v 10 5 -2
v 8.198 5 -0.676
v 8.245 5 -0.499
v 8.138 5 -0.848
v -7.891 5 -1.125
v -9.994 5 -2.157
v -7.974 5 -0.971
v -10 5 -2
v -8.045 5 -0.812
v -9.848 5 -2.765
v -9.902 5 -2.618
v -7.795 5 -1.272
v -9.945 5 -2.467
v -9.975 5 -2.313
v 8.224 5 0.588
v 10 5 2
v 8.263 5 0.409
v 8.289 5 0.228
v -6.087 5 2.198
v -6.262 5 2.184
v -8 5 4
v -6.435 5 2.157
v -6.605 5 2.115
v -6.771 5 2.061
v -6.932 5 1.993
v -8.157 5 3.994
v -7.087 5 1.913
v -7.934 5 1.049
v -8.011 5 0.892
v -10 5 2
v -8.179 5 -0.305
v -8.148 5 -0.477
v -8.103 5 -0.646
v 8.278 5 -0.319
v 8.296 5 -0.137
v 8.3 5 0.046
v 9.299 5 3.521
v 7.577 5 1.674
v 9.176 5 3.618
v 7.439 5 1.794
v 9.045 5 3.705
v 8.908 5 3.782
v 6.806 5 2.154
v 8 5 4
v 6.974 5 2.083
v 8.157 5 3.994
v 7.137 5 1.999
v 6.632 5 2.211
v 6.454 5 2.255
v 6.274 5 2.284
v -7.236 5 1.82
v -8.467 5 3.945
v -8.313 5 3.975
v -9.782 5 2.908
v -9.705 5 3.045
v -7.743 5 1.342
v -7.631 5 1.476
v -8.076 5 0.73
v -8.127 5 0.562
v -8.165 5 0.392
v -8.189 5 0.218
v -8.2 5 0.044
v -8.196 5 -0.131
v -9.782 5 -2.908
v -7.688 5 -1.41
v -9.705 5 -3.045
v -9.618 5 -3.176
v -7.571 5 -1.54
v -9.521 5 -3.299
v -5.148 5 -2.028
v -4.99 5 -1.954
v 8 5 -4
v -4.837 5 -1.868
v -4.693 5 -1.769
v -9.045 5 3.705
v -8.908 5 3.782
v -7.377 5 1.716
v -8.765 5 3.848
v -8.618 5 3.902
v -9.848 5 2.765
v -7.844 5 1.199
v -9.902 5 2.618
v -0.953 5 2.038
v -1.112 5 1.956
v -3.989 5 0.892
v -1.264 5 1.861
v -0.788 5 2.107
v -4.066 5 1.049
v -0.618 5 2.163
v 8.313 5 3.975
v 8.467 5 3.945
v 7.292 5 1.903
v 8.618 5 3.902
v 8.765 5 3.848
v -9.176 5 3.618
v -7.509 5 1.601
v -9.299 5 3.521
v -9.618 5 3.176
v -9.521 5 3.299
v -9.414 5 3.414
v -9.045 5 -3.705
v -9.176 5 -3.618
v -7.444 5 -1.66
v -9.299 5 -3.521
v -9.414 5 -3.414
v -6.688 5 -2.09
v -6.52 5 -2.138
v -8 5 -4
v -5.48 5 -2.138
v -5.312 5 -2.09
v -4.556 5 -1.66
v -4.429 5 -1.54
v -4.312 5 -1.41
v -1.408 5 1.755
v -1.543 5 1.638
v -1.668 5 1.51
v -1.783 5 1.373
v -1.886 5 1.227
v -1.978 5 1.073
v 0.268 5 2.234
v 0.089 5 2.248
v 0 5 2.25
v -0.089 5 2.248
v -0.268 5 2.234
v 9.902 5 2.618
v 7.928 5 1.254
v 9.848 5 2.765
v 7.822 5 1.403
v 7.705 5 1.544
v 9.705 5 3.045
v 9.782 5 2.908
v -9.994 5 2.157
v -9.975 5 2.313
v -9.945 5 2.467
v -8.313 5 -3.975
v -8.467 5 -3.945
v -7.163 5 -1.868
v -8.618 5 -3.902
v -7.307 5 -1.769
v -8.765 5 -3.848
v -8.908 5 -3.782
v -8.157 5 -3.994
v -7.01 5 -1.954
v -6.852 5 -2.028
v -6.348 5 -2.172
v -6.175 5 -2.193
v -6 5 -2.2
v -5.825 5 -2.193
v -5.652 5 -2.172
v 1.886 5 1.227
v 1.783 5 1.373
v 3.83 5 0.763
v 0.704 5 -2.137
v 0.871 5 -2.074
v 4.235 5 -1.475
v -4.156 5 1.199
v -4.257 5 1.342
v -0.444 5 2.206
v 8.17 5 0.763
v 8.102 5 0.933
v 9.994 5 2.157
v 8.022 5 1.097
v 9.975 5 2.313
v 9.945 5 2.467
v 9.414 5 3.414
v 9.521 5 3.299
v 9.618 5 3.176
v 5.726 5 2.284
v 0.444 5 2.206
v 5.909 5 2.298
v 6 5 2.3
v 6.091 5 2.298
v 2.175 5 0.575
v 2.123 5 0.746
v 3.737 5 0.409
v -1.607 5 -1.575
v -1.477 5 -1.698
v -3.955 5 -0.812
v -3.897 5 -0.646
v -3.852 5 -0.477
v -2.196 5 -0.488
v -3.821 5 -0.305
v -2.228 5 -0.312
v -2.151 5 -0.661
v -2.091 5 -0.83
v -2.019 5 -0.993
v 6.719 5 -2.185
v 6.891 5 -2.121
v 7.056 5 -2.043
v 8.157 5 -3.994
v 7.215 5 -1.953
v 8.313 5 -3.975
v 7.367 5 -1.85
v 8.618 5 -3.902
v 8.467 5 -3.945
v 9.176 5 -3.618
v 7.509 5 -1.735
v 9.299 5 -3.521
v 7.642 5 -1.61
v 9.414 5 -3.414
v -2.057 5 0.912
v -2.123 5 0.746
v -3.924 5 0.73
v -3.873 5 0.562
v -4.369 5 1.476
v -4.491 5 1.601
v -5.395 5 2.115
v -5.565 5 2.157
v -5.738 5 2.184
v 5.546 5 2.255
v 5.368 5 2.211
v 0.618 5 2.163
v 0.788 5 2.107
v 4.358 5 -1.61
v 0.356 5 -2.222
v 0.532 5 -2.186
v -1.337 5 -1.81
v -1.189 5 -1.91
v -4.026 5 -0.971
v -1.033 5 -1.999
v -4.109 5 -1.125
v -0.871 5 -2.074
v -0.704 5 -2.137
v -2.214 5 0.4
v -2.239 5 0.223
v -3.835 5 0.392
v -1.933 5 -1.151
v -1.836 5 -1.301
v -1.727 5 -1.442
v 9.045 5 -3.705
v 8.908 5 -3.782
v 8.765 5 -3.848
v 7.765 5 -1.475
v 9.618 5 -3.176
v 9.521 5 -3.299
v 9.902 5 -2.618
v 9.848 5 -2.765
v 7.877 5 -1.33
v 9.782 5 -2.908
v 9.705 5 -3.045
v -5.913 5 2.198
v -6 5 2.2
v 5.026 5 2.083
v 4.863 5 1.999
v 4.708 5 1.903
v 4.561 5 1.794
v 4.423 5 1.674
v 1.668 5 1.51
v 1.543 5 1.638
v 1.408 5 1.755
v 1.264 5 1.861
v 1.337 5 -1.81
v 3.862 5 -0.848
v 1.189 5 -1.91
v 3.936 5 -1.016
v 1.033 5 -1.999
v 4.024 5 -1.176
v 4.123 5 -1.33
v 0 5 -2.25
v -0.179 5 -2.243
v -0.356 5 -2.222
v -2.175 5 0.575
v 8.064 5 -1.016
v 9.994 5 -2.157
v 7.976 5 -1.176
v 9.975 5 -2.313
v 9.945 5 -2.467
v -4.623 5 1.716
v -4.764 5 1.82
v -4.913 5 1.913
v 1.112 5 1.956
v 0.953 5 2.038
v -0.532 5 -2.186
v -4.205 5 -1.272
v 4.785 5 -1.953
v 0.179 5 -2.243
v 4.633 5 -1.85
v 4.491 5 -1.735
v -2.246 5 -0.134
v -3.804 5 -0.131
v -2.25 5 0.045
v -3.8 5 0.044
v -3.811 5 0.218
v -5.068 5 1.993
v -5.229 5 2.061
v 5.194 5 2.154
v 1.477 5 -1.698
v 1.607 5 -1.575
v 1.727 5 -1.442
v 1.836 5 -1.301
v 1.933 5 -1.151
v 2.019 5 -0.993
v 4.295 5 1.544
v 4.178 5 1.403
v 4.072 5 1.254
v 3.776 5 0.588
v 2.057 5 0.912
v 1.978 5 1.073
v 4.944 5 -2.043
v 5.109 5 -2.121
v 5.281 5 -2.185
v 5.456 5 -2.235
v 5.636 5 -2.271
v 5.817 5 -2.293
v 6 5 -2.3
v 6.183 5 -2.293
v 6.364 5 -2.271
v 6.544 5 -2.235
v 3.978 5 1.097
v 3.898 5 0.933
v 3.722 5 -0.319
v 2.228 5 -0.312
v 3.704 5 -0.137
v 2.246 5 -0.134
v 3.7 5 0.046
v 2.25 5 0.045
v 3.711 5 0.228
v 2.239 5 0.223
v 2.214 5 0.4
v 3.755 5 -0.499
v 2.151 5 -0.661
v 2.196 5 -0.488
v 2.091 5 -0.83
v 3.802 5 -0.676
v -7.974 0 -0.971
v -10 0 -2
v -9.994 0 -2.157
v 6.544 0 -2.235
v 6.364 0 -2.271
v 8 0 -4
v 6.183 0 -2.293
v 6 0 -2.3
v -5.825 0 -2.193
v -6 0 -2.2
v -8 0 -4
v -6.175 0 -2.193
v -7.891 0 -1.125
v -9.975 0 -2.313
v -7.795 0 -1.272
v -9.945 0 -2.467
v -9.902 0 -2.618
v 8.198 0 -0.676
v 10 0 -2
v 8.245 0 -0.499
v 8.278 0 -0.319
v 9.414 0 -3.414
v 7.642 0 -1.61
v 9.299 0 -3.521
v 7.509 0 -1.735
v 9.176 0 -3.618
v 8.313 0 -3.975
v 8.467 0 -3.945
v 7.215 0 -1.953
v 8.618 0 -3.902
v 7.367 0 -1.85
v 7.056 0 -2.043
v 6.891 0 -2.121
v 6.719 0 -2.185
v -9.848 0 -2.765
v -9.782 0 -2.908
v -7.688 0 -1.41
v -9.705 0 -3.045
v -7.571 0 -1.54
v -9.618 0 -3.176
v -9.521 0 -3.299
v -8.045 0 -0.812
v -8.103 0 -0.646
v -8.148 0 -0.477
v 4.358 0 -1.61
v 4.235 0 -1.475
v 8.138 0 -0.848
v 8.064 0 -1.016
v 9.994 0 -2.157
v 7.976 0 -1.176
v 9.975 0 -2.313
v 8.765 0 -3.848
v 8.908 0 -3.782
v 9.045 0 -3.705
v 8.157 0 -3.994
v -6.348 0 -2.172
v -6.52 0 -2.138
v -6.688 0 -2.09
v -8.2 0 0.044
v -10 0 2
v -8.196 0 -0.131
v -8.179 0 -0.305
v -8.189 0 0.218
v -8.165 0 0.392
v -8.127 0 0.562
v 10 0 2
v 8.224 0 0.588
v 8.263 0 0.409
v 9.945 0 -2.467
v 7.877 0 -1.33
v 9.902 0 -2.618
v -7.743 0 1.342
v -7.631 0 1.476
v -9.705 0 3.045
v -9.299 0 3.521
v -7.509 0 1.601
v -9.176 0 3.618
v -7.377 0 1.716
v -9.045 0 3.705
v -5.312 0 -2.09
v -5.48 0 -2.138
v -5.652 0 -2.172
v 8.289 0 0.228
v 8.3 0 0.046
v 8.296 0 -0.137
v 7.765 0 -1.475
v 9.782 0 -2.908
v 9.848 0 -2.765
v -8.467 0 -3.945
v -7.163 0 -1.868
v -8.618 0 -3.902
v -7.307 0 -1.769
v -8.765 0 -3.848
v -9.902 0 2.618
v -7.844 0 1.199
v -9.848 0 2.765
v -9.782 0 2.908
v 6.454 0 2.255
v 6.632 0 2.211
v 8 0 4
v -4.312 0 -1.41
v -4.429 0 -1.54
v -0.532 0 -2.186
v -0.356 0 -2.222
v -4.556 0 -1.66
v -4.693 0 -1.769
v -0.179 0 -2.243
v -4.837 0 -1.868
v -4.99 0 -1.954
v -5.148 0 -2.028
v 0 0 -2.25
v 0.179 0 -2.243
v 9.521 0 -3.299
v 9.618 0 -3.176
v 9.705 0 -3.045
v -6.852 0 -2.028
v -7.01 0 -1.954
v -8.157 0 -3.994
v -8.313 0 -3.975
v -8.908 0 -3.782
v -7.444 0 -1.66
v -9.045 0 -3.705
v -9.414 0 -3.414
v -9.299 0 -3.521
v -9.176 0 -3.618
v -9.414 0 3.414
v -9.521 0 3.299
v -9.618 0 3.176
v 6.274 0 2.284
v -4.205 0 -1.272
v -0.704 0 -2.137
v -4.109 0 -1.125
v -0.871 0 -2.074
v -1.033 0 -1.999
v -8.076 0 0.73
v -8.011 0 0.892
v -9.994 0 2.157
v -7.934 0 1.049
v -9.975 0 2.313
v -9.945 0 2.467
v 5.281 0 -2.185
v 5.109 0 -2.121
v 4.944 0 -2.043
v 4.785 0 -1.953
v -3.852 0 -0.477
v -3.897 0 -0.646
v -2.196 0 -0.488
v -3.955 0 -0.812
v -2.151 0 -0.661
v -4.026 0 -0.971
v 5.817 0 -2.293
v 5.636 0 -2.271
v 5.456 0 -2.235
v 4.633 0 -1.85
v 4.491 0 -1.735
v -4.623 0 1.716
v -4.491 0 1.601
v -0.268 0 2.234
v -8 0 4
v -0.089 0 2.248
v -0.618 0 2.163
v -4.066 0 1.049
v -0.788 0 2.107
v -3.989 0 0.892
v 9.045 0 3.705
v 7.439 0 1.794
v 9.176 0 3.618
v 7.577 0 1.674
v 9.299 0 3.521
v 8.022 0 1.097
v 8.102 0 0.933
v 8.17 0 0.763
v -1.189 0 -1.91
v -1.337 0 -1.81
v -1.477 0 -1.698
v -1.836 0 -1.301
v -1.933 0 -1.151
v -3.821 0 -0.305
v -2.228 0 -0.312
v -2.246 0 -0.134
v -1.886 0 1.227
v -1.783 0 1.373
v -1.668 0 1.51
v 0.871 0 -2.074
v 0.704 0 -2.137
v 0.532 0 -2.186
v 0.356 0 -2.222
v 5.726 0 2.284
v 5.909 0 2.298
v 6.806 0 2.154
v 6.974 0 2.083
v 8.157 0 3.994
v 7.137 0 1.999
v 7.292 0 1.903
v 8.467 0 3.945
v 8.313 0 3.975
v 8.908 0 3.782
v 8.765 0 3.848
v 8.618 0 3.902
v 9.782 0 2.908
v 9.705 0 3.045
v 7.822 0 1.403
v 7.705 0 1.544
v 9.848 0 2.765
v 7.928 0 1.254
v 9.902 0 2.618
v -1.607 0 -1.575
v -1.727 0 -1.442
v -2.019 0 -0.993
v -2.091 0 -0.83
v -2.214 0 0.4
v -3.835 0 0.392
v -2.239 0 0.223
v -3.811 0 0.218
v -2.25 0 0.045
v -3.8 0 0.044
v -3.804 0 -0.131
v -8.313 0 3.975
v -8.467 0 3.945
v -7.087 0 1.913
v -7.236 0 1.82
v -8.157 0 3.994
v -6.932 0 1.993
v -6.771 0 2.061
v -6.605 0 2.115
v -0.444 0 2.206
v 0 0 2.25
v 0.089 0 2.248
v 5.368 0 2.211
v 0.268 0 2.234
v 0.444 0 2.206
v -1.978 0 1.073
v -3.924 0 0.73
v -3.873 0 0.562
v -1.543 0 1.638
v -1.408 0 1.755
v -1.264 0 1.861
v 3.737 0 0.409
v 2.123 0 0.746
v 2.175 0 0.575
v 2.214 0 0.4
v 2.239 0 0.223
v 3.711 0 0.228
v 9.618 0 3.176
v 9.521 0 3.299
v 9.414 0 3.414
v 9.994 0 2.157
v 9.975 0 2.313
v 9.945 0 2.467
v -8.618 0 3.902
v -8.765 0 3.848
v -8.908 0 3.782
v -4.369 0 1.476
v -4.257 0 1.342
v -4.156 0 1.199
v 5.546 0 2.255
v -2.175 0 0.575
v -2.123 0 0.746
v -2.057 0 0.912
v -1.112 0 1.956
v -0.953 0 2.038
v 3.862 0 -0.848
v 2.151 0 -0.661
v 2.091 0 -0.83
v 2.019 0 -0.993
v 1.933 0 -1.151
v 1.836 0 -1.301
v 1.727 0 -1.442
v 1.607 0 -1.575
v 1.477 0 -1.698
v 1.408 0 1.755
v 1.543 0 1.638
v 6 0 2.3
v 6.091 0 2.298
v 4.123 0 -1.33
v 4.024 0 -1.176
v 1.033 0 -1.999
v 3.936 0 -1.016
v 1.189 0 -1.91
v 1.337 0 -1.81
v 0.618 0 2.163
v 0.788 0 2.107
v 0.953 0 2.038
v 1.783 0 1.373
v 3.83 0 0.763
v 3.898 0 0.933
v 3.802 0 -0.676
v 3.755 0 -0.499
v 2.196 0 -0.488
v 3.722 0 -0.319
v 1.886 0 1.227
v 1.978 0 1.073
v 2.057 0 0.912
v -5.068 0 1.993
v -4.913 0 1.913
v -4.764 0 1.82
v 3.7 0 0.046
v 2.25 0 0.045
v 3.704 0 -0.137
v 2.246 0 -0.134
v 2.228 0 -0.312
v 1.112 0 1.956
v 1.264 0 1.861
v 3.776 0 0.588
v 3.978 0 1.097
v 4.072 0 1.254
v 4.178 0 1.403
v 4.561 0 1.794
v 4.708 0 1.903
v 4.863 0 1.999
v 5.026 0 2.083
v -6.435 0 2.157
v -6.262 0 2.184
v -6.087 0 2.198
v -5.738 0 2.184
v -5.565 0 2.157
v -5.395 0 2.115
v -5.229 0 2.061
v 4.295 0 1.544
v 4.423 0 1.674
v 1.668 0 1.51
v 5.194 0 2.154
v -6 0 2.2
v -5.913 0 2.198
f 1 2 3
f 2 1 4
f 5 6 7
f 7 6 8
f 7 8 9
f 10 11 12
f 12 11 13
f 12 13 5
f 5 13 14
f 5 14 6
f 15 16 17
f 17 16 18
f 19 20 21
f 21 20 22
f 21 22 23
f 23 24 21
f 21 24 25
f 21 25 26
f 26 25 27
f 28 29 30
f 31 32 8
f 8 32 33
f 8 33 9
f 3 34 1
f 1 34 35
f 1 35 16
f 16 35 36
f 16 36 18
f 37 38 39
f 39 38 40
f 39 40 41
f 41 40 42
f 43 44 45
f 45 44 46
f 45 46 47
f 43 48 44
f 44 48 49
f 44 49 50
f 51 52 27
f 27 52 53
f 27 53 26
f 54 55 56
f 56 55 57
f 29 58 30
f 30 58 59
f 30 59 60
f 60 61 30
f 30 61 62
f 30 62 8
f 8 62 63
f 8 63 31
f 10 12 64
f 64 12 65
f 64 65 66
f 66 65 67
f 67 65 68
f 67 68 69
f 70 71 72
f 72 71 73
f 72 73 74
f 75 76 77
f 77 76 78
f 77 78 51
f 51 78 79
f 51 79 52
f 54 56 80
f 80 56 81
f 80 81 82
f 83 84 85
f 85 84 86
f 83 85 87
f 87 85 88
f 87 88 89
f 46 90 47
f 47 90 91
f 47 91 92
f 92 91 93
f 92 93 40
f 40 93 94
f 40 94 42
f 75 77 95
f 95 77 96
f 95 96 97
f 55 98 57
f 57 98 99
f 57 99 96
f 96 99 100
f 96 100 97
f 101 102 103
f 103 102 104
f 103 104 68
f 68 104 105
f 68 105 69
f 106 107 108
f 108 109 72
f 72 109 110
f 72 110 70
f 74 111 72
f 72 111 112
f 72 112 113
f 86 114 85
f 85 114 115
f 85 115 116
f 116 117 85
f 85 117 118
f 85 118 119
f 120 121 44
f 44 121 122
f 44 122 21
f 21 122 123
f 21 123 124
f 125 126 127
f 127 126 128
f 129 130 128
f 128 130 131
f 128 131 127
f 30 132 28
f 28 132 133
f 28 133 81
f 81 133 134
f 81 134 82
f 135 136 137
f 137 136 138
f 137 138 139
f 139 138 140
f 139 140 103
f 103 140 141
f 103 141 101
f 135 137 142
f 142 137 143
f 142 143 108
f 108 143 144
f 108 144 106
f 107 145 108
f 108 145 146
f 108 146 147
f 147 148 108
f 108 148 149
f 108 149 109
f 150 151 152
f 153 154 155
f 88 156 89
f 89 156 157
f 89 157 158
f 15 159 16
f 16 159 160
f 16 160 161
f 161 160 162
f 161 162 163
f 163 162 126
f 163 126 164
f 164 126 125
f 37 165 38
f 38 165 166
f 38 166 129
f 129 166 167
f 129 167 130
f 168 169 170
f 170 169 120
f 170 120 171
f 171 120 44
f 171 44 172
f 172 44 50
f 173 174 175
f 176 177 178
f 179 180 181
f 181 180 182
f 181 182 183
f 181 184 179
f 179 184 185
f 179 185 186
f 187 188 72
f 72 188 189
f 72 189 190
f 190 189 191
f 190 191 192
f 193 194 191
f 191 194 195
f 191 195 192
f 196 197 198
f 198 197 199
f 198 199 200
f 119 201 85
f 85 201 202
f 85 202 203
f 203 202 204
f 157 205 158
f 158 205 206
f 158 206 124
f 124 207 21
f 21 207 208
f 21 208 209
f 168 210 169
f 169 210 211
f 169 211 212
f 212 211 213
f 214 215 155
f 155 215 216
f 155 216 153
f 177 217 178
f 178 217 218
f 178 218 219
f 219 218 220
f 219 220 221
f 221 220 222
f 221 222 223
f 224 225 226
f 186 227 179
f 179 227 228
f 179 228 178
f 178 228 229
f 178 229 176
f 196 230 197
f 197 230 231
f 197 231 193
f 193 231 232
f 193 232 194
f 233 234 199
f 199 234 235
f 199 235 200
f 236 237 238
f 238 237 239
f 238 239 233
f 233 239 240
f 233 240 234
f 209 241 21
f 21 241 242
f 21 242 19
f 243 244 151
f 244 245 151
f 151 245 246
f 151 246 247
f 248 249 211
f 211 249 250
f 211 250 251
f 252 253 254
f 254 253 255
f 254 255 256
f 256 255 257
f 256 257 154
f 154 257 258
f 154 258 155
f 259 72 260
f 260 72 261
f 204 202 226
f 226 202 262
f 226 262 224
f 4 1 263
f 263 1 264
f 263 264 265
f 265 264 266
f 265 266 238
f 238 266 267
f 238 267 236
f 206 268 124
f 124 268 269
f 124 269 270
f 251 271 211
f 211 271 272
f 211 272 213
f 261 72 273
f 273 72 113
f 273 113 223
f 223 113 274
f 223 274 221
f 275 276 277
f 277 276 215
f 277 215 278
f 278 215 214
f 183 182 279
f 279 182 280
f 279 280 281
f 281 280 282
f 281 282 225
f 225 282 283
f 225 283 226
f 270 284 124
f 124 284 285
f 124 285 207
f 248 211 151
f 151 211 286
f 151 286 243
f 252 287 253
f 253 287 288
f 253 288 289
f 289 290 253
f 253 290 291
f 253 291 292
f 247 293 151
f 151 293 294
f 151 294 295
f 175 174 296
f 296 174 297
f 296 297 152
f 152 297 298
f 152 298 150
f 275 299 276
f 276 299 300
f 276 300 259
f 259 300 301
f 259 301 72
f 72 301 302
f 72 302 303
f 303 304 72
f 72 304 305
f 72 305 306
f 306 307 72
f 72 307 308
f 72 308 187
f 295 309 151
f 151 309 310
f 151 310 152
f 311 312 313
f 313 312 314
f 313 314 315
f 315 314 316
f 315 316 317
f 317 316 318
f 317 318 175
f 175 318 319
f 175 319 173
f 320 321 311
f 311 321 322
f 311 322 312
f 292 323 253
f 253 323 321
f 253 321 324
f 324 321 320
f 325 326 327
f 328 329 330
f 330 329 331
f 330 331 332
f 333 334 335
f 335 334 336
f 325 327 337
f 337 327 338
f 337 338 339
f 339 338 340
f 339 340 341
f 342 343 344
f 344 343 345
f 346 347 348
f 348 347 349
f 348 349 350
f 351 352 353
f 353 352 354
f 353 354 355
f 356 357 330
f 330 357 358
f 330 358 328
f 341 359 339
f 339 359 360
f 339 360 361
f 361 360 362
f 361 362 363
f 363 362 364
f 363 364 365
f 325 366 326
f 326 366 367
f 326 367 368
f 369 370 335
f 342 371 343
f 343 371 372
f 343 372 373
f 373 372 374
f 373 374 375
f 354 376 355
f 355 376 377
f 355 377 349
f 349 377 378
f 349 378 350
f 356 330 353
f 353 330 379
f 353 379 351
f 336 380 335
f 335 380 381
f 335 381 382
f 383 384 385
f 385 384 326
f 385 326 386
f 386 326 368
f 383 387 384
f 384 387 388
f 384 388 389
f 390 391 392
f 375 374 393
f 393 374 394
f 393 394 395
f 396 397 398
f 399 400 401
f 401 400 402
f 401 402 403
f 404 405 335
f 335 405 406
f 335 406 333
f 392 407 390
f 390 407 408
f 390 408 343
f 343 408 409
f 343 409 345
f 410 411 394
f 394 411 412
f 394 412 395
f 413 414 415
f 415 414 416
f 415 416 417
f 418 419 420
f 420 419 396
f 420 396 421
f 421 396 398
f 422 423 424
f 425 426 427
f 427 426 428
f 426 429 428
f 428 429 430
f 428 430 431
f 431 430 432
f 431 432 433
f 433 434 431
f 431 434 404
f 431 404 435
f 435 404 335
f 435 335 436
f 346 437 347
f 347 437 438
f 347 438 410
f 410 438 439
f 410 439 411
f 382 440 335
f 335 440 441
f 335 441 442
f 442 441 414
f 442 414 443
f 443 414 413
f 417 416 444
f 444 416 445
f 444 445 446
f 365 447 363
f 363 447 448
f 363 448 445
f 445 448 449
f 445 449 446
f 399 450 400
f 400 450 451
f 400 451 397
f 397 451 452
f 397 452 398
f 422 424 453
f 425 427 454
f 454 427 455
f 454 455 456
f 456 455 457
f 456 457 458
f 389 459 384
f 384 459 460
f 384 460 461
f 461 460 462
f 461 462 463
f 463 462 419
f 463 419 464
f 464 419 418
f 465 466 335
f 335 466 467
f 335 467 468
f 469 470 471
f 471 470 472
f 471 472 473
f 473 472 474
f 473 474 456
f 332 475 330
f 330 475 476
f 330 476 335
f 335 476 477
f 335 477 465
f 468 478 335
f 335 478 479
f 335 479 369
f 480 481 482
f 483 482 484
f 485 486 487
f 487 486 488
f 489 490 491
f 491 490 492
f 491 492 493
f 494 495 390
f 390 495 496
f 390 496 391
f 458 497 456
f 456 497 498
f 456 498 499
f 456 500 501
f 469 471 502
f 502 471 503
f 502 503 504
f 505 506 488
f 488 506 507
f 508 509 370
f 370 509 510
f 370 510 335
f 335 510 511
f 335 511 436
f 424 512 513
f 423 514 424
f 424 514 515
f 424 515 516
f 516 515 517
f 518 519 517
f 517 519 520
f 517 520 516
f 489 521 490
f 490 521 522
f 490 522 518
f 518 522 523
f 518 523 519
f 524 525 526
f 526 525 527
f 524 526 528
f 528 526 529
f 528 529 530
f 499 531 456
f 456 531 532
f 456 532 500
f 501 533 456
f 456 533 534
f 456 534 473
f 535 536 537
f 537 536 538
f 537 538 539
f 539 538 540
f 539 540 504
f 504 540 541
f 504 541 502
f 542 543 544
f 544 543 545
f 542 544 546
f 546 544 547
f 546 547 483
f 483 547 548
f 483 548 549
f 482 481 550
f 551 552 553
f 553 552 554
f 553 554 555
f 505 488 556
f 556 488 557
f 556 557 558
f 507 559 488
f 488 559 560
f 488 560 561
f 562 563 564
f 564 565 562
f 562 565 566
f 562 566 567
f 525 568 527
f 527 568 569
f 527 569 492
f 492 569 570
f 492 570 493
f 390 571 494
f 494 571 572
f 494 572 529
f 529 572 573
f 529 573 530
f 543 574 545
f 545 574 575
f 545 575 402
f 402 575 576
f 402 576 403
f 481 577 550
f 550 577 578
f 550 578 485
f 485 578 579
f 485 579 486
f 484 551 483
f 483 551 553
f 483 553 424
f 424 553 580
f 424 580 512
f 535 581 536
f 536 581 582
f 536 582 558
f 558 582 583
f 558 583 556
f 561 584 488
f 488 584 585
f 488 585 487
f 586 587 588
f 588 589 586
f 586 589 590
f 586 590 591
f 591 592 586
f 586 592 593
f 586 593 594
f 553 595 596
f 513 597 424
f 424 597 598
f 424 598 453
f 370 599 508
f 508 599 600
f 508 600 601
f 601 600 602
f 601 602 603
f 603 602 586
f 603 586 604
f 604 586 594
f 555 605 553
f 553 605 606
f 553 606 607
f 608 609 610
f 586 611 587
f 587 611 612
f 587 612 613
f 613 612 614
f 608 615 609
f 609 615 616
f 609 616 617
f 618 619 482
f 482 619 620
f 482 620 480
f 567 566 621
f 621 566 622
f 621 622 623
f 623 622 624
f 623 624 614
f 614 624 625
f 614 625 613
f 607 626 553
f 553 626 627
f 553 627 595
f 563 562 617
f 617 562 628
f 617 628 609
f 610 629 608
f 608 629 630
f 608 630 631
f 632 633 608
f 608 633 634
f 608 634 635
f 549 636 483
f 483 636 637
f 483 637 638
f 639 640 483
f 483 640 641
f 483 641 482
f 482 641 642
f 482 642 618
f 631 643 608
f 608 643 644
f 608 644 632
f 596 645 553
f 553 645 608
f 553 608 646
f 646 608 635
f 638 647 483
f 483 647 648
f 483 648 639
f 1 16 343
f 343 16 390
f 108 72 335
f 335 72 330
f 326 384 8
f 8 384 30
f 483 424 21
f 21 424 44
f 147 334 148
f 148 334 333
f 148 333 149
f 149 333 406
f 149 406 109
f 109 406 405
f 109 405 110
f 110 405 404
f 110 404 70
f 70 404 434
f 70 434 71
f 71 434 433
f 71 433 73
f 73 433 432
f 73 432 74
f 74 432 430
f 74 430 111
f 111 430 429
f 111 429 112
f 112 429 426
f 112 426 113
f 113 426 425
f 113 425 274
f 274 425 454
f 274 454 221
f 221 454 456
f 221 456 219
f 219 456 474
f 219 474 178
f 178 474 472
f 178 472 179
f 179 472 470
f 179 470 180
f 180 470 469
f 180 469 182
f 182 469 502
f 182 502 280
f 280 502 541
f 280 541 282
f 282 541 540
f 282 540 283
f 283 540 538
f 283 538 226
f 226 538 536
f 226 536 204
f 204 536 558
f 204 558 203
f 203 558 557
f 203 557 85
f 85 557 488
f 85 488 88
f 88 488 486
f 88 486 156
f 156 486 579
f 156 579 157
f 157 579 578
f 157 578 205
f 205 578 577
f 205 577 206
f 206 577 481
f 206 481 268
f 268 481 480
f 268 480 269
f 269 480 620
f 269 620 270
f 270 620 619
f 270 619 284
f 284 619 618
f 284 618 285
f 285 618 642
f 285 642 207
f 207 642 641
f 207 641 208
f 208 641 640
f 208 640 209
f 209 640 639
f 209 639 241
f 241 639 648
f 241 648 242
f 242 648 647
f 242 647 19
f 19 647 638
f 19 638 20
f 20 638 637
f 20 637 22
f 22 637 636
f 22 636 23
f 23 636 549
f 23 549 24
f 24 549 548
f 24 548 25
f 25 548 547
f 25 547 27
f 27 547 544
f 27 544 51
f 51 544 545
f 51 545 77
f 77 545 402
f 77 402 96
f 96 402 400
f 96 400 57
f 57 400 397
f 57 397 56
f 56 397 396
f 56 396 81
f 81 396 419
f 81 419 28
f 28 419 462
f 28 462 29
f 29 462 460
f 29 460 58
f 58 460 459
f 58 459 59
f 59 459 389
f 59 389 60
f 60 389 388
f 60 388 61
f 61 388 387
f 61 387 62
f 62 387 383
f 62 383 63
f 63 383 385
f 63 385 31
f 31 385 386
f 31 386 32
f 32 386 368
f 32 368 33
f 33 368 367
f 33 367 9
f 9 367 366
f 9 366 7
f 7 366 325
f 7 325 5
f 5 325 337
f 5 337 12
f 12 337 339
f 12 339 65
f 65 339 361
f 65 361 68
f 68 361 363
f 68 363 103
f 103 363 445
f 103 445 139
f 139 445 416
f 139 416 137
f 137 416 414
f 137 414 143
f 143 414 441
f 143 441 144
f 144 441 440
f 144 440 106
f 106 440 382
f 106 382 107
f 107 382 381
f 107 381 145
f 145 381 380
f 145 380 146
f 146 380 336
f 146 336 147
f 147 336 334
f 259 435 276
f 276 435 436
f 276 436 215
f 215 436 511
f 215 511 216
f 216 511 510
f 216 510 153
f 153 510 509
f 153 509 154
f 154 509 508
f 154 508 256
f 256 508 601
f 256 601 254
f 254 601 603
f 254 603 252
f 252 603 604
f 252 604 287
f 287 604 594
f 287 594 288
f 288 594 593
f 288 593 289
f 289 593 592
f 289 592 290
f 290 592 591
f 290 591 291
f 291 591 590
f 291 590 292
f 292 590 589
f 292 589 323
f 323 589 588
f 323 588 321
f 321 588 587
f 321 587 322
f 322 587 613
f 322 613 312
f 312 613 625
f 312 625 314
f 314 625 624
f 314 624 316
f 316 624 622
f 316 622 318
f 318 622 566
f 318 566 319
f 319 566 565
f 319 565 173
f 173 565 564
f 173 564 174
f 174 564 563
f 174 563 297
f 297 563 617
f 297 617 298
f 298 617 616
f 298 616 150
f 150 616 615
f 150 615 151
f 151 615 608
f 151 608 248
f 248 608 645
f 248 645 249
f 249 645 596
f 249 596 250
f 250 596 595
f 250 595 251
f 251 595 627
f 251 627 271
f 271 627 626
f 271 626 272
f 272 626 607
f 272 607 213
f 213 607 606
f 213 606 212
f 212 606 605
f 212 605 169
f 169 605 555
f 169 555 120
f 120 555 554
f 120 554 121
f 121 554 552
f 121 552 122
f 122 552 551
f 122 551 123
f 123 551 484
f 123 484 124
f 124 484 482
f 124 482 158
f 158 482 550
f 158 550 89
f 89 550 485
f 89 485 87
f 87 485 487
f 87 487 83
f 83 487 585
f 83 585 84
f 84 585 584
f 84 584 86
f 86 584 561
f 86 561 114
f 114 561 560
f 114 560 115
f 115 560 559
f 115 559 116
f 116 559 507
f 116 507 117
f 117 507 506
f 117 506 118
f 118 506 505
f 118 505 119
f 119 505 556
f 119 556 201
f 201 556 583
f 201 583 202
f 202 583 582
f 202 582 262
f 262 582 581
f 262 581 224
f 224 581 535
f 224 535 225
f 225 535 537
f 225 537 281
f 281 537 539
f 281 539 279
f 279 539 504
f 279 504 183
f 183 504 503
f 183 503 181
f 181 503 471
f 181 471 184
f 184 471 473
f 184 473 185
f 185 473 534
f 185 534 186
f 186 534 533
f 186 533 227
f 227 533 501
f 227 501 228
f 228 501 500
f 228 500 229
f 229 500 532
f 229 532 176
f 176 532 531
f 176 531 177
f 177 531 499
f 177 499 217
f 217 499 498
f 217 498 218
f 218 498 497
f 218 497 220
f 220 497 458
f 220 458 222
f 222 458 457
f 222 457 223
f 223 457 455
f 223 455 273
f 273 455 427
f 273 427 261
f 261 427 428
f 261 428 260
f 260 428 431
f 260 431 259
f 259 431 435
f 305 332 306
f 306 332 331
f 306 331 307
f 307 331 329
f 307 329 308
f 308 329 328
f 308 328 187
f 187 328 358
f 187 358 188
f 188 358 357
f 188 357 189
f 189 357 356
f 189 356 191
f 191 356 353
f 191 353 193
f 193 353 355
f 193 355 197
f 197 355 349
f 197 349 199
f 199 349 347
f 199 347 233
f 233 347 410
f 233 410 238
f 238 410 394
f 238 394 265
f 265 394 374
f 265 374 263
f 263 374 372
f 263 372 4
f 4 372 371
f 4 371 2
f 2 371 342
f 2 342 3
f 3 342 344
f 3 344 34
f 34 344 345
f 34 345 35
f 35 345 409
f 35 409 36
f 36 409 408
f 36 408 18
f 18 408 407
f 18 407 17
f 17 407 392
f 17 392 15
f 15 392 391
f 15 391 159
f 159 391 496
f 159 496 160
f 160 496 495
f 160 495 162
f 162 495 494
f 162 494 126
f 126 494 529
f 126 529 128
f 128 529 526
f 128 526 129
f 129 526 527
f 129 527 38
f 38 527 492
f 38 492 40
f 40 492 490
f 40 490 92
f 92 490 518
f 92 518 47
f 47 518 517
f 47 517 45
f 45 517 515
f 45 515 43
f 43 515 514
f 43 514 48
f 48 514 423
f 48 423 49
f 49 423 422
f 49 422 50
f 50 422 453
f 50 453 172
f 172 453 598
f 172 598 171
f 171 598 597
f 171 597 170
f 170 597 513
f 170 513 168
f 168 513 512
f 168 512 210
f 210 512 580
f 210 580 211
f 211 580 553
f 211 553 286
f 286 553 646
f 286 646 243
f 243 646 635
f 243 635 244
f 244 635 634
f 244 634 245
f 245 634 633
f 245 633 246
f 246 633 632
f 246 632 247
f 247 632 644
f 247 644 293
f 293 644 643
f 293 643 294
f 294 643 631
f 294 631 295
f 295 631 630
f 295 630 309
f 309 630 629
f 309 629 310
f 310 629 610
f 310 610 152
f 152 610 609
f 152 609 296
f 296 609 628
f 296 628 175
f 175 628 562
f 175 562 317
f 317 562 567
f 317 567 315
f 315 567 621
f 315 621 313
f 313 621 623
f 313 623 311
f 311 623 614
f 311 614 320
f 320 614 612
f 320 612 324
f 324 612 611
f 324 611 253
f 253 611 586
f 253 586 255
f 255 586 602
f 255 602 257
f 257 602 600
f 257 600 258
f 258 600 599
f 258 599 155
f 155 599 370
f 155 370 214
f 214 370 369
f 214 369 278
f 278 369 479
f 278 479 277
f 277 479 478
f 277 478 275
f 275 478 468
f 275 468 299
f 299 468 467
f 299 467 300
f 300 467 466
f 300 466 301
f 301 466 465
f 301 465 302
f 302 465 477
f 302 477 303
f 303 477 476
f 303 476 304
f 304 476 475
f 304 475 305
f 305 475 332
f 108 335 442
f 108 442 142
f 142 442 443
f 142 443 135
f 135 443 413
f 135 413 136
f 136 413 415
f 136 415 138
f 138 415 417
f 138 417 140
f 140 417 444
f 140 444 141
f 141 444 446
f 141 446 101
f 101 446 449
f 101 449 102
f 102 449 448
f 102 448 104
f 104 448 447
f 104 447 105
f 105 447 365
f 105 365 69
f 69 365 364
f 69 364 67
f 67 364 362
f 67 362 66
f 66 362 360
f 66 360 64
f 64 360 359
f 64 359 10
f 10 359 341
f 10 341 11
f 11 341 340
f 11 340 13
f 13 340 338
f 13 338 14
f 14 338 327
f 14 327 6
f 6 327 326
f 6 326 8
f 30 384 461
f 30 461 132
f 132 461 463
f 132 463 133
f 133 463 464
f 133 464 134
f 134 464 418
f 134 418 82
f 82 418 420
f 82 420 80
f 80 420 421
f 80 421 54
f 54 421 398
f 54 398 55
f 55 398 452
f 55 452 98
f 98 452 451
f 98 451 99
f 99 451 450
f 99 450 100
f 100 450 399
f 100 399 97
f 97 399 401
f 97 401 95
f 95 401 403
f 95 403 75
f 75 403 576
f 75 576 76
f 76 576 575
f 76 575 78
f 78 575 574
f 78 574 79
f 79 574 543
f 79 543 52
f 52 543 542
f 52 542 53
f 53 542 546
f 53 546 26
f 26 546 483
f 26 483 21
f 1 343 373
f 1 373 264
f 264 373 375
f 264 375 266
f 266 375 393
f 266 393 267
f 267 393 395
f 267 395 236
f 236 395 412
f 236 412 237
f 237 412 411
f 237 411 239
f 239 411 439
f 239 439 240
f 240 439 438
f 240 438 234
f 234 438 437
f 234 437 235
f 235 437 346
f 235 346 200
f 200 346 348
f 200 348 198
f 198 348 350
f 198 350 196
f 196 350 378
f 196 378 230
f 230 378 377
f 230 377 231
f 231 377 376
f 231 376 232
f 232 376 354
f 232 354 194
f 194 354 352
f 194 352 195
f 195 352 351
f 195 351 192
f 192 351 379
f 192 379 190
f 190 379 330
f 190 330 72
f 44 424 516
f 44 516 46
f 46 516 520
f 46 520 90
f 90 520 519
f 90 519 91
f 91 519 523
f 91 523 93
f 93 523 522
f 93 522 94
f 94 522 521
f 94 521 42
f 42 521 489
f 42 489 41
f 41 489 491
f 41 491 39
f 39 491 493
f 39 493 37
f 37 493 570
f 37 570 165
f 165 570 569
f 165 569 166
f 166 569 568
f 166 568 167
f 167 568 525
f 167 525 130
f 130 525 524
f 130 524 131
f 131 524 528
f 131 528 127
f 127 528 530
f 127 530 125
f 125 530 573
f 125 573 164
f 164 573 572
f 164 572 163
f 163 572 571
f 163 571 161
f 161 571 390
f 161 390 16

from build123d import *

# Parameters (mm, degrees)
SKETCH1_W           = 20
SKETCH1_H           = 8
SKETCH1_R           = 2.2
SKETCH1_R_2         = 2.25
SKETCH1_R_3         = 2.3
BOSS_EXTRUDE1_DEPTH = 5
FILLET1_R           = 2


with BuildPart() as part:
    # Sketch1 → Boss-Extrude1 (new body)
    with BuildSketch(Plane(origin=(0, 0, 0), x_dir=(1, 0, 0), z_dir=(0, 1, 0))):
        Rectangle(SKETCH1_W, SKETCH1_H)
        with Locations((-6, 0)):
            Circle(SKETCH1_R, mode=Mode.SUBTRACT)
        Circle(SKETCH1_R_2, mode=Mode.SUBTRACT)
        with Locations((6, 0)):
            Circle(SKETCH1_R_3, mode=Mode.SUBTRACT)
    extrude(amount=BOSS_EXTRUDE1_DEPTH)

    # Fillet1
    fillet1_edges = [part.edges().sort_by_distance(p)[0] for p in [
        (10, 2.5, 4),
        (-10, 2.5, 4),
        (-10, 2.5, -4),
        (10, 2.5, -4),
    ]]
    fillet(fillet1_edges, radius=FILLET1_R)


solid = part.part
